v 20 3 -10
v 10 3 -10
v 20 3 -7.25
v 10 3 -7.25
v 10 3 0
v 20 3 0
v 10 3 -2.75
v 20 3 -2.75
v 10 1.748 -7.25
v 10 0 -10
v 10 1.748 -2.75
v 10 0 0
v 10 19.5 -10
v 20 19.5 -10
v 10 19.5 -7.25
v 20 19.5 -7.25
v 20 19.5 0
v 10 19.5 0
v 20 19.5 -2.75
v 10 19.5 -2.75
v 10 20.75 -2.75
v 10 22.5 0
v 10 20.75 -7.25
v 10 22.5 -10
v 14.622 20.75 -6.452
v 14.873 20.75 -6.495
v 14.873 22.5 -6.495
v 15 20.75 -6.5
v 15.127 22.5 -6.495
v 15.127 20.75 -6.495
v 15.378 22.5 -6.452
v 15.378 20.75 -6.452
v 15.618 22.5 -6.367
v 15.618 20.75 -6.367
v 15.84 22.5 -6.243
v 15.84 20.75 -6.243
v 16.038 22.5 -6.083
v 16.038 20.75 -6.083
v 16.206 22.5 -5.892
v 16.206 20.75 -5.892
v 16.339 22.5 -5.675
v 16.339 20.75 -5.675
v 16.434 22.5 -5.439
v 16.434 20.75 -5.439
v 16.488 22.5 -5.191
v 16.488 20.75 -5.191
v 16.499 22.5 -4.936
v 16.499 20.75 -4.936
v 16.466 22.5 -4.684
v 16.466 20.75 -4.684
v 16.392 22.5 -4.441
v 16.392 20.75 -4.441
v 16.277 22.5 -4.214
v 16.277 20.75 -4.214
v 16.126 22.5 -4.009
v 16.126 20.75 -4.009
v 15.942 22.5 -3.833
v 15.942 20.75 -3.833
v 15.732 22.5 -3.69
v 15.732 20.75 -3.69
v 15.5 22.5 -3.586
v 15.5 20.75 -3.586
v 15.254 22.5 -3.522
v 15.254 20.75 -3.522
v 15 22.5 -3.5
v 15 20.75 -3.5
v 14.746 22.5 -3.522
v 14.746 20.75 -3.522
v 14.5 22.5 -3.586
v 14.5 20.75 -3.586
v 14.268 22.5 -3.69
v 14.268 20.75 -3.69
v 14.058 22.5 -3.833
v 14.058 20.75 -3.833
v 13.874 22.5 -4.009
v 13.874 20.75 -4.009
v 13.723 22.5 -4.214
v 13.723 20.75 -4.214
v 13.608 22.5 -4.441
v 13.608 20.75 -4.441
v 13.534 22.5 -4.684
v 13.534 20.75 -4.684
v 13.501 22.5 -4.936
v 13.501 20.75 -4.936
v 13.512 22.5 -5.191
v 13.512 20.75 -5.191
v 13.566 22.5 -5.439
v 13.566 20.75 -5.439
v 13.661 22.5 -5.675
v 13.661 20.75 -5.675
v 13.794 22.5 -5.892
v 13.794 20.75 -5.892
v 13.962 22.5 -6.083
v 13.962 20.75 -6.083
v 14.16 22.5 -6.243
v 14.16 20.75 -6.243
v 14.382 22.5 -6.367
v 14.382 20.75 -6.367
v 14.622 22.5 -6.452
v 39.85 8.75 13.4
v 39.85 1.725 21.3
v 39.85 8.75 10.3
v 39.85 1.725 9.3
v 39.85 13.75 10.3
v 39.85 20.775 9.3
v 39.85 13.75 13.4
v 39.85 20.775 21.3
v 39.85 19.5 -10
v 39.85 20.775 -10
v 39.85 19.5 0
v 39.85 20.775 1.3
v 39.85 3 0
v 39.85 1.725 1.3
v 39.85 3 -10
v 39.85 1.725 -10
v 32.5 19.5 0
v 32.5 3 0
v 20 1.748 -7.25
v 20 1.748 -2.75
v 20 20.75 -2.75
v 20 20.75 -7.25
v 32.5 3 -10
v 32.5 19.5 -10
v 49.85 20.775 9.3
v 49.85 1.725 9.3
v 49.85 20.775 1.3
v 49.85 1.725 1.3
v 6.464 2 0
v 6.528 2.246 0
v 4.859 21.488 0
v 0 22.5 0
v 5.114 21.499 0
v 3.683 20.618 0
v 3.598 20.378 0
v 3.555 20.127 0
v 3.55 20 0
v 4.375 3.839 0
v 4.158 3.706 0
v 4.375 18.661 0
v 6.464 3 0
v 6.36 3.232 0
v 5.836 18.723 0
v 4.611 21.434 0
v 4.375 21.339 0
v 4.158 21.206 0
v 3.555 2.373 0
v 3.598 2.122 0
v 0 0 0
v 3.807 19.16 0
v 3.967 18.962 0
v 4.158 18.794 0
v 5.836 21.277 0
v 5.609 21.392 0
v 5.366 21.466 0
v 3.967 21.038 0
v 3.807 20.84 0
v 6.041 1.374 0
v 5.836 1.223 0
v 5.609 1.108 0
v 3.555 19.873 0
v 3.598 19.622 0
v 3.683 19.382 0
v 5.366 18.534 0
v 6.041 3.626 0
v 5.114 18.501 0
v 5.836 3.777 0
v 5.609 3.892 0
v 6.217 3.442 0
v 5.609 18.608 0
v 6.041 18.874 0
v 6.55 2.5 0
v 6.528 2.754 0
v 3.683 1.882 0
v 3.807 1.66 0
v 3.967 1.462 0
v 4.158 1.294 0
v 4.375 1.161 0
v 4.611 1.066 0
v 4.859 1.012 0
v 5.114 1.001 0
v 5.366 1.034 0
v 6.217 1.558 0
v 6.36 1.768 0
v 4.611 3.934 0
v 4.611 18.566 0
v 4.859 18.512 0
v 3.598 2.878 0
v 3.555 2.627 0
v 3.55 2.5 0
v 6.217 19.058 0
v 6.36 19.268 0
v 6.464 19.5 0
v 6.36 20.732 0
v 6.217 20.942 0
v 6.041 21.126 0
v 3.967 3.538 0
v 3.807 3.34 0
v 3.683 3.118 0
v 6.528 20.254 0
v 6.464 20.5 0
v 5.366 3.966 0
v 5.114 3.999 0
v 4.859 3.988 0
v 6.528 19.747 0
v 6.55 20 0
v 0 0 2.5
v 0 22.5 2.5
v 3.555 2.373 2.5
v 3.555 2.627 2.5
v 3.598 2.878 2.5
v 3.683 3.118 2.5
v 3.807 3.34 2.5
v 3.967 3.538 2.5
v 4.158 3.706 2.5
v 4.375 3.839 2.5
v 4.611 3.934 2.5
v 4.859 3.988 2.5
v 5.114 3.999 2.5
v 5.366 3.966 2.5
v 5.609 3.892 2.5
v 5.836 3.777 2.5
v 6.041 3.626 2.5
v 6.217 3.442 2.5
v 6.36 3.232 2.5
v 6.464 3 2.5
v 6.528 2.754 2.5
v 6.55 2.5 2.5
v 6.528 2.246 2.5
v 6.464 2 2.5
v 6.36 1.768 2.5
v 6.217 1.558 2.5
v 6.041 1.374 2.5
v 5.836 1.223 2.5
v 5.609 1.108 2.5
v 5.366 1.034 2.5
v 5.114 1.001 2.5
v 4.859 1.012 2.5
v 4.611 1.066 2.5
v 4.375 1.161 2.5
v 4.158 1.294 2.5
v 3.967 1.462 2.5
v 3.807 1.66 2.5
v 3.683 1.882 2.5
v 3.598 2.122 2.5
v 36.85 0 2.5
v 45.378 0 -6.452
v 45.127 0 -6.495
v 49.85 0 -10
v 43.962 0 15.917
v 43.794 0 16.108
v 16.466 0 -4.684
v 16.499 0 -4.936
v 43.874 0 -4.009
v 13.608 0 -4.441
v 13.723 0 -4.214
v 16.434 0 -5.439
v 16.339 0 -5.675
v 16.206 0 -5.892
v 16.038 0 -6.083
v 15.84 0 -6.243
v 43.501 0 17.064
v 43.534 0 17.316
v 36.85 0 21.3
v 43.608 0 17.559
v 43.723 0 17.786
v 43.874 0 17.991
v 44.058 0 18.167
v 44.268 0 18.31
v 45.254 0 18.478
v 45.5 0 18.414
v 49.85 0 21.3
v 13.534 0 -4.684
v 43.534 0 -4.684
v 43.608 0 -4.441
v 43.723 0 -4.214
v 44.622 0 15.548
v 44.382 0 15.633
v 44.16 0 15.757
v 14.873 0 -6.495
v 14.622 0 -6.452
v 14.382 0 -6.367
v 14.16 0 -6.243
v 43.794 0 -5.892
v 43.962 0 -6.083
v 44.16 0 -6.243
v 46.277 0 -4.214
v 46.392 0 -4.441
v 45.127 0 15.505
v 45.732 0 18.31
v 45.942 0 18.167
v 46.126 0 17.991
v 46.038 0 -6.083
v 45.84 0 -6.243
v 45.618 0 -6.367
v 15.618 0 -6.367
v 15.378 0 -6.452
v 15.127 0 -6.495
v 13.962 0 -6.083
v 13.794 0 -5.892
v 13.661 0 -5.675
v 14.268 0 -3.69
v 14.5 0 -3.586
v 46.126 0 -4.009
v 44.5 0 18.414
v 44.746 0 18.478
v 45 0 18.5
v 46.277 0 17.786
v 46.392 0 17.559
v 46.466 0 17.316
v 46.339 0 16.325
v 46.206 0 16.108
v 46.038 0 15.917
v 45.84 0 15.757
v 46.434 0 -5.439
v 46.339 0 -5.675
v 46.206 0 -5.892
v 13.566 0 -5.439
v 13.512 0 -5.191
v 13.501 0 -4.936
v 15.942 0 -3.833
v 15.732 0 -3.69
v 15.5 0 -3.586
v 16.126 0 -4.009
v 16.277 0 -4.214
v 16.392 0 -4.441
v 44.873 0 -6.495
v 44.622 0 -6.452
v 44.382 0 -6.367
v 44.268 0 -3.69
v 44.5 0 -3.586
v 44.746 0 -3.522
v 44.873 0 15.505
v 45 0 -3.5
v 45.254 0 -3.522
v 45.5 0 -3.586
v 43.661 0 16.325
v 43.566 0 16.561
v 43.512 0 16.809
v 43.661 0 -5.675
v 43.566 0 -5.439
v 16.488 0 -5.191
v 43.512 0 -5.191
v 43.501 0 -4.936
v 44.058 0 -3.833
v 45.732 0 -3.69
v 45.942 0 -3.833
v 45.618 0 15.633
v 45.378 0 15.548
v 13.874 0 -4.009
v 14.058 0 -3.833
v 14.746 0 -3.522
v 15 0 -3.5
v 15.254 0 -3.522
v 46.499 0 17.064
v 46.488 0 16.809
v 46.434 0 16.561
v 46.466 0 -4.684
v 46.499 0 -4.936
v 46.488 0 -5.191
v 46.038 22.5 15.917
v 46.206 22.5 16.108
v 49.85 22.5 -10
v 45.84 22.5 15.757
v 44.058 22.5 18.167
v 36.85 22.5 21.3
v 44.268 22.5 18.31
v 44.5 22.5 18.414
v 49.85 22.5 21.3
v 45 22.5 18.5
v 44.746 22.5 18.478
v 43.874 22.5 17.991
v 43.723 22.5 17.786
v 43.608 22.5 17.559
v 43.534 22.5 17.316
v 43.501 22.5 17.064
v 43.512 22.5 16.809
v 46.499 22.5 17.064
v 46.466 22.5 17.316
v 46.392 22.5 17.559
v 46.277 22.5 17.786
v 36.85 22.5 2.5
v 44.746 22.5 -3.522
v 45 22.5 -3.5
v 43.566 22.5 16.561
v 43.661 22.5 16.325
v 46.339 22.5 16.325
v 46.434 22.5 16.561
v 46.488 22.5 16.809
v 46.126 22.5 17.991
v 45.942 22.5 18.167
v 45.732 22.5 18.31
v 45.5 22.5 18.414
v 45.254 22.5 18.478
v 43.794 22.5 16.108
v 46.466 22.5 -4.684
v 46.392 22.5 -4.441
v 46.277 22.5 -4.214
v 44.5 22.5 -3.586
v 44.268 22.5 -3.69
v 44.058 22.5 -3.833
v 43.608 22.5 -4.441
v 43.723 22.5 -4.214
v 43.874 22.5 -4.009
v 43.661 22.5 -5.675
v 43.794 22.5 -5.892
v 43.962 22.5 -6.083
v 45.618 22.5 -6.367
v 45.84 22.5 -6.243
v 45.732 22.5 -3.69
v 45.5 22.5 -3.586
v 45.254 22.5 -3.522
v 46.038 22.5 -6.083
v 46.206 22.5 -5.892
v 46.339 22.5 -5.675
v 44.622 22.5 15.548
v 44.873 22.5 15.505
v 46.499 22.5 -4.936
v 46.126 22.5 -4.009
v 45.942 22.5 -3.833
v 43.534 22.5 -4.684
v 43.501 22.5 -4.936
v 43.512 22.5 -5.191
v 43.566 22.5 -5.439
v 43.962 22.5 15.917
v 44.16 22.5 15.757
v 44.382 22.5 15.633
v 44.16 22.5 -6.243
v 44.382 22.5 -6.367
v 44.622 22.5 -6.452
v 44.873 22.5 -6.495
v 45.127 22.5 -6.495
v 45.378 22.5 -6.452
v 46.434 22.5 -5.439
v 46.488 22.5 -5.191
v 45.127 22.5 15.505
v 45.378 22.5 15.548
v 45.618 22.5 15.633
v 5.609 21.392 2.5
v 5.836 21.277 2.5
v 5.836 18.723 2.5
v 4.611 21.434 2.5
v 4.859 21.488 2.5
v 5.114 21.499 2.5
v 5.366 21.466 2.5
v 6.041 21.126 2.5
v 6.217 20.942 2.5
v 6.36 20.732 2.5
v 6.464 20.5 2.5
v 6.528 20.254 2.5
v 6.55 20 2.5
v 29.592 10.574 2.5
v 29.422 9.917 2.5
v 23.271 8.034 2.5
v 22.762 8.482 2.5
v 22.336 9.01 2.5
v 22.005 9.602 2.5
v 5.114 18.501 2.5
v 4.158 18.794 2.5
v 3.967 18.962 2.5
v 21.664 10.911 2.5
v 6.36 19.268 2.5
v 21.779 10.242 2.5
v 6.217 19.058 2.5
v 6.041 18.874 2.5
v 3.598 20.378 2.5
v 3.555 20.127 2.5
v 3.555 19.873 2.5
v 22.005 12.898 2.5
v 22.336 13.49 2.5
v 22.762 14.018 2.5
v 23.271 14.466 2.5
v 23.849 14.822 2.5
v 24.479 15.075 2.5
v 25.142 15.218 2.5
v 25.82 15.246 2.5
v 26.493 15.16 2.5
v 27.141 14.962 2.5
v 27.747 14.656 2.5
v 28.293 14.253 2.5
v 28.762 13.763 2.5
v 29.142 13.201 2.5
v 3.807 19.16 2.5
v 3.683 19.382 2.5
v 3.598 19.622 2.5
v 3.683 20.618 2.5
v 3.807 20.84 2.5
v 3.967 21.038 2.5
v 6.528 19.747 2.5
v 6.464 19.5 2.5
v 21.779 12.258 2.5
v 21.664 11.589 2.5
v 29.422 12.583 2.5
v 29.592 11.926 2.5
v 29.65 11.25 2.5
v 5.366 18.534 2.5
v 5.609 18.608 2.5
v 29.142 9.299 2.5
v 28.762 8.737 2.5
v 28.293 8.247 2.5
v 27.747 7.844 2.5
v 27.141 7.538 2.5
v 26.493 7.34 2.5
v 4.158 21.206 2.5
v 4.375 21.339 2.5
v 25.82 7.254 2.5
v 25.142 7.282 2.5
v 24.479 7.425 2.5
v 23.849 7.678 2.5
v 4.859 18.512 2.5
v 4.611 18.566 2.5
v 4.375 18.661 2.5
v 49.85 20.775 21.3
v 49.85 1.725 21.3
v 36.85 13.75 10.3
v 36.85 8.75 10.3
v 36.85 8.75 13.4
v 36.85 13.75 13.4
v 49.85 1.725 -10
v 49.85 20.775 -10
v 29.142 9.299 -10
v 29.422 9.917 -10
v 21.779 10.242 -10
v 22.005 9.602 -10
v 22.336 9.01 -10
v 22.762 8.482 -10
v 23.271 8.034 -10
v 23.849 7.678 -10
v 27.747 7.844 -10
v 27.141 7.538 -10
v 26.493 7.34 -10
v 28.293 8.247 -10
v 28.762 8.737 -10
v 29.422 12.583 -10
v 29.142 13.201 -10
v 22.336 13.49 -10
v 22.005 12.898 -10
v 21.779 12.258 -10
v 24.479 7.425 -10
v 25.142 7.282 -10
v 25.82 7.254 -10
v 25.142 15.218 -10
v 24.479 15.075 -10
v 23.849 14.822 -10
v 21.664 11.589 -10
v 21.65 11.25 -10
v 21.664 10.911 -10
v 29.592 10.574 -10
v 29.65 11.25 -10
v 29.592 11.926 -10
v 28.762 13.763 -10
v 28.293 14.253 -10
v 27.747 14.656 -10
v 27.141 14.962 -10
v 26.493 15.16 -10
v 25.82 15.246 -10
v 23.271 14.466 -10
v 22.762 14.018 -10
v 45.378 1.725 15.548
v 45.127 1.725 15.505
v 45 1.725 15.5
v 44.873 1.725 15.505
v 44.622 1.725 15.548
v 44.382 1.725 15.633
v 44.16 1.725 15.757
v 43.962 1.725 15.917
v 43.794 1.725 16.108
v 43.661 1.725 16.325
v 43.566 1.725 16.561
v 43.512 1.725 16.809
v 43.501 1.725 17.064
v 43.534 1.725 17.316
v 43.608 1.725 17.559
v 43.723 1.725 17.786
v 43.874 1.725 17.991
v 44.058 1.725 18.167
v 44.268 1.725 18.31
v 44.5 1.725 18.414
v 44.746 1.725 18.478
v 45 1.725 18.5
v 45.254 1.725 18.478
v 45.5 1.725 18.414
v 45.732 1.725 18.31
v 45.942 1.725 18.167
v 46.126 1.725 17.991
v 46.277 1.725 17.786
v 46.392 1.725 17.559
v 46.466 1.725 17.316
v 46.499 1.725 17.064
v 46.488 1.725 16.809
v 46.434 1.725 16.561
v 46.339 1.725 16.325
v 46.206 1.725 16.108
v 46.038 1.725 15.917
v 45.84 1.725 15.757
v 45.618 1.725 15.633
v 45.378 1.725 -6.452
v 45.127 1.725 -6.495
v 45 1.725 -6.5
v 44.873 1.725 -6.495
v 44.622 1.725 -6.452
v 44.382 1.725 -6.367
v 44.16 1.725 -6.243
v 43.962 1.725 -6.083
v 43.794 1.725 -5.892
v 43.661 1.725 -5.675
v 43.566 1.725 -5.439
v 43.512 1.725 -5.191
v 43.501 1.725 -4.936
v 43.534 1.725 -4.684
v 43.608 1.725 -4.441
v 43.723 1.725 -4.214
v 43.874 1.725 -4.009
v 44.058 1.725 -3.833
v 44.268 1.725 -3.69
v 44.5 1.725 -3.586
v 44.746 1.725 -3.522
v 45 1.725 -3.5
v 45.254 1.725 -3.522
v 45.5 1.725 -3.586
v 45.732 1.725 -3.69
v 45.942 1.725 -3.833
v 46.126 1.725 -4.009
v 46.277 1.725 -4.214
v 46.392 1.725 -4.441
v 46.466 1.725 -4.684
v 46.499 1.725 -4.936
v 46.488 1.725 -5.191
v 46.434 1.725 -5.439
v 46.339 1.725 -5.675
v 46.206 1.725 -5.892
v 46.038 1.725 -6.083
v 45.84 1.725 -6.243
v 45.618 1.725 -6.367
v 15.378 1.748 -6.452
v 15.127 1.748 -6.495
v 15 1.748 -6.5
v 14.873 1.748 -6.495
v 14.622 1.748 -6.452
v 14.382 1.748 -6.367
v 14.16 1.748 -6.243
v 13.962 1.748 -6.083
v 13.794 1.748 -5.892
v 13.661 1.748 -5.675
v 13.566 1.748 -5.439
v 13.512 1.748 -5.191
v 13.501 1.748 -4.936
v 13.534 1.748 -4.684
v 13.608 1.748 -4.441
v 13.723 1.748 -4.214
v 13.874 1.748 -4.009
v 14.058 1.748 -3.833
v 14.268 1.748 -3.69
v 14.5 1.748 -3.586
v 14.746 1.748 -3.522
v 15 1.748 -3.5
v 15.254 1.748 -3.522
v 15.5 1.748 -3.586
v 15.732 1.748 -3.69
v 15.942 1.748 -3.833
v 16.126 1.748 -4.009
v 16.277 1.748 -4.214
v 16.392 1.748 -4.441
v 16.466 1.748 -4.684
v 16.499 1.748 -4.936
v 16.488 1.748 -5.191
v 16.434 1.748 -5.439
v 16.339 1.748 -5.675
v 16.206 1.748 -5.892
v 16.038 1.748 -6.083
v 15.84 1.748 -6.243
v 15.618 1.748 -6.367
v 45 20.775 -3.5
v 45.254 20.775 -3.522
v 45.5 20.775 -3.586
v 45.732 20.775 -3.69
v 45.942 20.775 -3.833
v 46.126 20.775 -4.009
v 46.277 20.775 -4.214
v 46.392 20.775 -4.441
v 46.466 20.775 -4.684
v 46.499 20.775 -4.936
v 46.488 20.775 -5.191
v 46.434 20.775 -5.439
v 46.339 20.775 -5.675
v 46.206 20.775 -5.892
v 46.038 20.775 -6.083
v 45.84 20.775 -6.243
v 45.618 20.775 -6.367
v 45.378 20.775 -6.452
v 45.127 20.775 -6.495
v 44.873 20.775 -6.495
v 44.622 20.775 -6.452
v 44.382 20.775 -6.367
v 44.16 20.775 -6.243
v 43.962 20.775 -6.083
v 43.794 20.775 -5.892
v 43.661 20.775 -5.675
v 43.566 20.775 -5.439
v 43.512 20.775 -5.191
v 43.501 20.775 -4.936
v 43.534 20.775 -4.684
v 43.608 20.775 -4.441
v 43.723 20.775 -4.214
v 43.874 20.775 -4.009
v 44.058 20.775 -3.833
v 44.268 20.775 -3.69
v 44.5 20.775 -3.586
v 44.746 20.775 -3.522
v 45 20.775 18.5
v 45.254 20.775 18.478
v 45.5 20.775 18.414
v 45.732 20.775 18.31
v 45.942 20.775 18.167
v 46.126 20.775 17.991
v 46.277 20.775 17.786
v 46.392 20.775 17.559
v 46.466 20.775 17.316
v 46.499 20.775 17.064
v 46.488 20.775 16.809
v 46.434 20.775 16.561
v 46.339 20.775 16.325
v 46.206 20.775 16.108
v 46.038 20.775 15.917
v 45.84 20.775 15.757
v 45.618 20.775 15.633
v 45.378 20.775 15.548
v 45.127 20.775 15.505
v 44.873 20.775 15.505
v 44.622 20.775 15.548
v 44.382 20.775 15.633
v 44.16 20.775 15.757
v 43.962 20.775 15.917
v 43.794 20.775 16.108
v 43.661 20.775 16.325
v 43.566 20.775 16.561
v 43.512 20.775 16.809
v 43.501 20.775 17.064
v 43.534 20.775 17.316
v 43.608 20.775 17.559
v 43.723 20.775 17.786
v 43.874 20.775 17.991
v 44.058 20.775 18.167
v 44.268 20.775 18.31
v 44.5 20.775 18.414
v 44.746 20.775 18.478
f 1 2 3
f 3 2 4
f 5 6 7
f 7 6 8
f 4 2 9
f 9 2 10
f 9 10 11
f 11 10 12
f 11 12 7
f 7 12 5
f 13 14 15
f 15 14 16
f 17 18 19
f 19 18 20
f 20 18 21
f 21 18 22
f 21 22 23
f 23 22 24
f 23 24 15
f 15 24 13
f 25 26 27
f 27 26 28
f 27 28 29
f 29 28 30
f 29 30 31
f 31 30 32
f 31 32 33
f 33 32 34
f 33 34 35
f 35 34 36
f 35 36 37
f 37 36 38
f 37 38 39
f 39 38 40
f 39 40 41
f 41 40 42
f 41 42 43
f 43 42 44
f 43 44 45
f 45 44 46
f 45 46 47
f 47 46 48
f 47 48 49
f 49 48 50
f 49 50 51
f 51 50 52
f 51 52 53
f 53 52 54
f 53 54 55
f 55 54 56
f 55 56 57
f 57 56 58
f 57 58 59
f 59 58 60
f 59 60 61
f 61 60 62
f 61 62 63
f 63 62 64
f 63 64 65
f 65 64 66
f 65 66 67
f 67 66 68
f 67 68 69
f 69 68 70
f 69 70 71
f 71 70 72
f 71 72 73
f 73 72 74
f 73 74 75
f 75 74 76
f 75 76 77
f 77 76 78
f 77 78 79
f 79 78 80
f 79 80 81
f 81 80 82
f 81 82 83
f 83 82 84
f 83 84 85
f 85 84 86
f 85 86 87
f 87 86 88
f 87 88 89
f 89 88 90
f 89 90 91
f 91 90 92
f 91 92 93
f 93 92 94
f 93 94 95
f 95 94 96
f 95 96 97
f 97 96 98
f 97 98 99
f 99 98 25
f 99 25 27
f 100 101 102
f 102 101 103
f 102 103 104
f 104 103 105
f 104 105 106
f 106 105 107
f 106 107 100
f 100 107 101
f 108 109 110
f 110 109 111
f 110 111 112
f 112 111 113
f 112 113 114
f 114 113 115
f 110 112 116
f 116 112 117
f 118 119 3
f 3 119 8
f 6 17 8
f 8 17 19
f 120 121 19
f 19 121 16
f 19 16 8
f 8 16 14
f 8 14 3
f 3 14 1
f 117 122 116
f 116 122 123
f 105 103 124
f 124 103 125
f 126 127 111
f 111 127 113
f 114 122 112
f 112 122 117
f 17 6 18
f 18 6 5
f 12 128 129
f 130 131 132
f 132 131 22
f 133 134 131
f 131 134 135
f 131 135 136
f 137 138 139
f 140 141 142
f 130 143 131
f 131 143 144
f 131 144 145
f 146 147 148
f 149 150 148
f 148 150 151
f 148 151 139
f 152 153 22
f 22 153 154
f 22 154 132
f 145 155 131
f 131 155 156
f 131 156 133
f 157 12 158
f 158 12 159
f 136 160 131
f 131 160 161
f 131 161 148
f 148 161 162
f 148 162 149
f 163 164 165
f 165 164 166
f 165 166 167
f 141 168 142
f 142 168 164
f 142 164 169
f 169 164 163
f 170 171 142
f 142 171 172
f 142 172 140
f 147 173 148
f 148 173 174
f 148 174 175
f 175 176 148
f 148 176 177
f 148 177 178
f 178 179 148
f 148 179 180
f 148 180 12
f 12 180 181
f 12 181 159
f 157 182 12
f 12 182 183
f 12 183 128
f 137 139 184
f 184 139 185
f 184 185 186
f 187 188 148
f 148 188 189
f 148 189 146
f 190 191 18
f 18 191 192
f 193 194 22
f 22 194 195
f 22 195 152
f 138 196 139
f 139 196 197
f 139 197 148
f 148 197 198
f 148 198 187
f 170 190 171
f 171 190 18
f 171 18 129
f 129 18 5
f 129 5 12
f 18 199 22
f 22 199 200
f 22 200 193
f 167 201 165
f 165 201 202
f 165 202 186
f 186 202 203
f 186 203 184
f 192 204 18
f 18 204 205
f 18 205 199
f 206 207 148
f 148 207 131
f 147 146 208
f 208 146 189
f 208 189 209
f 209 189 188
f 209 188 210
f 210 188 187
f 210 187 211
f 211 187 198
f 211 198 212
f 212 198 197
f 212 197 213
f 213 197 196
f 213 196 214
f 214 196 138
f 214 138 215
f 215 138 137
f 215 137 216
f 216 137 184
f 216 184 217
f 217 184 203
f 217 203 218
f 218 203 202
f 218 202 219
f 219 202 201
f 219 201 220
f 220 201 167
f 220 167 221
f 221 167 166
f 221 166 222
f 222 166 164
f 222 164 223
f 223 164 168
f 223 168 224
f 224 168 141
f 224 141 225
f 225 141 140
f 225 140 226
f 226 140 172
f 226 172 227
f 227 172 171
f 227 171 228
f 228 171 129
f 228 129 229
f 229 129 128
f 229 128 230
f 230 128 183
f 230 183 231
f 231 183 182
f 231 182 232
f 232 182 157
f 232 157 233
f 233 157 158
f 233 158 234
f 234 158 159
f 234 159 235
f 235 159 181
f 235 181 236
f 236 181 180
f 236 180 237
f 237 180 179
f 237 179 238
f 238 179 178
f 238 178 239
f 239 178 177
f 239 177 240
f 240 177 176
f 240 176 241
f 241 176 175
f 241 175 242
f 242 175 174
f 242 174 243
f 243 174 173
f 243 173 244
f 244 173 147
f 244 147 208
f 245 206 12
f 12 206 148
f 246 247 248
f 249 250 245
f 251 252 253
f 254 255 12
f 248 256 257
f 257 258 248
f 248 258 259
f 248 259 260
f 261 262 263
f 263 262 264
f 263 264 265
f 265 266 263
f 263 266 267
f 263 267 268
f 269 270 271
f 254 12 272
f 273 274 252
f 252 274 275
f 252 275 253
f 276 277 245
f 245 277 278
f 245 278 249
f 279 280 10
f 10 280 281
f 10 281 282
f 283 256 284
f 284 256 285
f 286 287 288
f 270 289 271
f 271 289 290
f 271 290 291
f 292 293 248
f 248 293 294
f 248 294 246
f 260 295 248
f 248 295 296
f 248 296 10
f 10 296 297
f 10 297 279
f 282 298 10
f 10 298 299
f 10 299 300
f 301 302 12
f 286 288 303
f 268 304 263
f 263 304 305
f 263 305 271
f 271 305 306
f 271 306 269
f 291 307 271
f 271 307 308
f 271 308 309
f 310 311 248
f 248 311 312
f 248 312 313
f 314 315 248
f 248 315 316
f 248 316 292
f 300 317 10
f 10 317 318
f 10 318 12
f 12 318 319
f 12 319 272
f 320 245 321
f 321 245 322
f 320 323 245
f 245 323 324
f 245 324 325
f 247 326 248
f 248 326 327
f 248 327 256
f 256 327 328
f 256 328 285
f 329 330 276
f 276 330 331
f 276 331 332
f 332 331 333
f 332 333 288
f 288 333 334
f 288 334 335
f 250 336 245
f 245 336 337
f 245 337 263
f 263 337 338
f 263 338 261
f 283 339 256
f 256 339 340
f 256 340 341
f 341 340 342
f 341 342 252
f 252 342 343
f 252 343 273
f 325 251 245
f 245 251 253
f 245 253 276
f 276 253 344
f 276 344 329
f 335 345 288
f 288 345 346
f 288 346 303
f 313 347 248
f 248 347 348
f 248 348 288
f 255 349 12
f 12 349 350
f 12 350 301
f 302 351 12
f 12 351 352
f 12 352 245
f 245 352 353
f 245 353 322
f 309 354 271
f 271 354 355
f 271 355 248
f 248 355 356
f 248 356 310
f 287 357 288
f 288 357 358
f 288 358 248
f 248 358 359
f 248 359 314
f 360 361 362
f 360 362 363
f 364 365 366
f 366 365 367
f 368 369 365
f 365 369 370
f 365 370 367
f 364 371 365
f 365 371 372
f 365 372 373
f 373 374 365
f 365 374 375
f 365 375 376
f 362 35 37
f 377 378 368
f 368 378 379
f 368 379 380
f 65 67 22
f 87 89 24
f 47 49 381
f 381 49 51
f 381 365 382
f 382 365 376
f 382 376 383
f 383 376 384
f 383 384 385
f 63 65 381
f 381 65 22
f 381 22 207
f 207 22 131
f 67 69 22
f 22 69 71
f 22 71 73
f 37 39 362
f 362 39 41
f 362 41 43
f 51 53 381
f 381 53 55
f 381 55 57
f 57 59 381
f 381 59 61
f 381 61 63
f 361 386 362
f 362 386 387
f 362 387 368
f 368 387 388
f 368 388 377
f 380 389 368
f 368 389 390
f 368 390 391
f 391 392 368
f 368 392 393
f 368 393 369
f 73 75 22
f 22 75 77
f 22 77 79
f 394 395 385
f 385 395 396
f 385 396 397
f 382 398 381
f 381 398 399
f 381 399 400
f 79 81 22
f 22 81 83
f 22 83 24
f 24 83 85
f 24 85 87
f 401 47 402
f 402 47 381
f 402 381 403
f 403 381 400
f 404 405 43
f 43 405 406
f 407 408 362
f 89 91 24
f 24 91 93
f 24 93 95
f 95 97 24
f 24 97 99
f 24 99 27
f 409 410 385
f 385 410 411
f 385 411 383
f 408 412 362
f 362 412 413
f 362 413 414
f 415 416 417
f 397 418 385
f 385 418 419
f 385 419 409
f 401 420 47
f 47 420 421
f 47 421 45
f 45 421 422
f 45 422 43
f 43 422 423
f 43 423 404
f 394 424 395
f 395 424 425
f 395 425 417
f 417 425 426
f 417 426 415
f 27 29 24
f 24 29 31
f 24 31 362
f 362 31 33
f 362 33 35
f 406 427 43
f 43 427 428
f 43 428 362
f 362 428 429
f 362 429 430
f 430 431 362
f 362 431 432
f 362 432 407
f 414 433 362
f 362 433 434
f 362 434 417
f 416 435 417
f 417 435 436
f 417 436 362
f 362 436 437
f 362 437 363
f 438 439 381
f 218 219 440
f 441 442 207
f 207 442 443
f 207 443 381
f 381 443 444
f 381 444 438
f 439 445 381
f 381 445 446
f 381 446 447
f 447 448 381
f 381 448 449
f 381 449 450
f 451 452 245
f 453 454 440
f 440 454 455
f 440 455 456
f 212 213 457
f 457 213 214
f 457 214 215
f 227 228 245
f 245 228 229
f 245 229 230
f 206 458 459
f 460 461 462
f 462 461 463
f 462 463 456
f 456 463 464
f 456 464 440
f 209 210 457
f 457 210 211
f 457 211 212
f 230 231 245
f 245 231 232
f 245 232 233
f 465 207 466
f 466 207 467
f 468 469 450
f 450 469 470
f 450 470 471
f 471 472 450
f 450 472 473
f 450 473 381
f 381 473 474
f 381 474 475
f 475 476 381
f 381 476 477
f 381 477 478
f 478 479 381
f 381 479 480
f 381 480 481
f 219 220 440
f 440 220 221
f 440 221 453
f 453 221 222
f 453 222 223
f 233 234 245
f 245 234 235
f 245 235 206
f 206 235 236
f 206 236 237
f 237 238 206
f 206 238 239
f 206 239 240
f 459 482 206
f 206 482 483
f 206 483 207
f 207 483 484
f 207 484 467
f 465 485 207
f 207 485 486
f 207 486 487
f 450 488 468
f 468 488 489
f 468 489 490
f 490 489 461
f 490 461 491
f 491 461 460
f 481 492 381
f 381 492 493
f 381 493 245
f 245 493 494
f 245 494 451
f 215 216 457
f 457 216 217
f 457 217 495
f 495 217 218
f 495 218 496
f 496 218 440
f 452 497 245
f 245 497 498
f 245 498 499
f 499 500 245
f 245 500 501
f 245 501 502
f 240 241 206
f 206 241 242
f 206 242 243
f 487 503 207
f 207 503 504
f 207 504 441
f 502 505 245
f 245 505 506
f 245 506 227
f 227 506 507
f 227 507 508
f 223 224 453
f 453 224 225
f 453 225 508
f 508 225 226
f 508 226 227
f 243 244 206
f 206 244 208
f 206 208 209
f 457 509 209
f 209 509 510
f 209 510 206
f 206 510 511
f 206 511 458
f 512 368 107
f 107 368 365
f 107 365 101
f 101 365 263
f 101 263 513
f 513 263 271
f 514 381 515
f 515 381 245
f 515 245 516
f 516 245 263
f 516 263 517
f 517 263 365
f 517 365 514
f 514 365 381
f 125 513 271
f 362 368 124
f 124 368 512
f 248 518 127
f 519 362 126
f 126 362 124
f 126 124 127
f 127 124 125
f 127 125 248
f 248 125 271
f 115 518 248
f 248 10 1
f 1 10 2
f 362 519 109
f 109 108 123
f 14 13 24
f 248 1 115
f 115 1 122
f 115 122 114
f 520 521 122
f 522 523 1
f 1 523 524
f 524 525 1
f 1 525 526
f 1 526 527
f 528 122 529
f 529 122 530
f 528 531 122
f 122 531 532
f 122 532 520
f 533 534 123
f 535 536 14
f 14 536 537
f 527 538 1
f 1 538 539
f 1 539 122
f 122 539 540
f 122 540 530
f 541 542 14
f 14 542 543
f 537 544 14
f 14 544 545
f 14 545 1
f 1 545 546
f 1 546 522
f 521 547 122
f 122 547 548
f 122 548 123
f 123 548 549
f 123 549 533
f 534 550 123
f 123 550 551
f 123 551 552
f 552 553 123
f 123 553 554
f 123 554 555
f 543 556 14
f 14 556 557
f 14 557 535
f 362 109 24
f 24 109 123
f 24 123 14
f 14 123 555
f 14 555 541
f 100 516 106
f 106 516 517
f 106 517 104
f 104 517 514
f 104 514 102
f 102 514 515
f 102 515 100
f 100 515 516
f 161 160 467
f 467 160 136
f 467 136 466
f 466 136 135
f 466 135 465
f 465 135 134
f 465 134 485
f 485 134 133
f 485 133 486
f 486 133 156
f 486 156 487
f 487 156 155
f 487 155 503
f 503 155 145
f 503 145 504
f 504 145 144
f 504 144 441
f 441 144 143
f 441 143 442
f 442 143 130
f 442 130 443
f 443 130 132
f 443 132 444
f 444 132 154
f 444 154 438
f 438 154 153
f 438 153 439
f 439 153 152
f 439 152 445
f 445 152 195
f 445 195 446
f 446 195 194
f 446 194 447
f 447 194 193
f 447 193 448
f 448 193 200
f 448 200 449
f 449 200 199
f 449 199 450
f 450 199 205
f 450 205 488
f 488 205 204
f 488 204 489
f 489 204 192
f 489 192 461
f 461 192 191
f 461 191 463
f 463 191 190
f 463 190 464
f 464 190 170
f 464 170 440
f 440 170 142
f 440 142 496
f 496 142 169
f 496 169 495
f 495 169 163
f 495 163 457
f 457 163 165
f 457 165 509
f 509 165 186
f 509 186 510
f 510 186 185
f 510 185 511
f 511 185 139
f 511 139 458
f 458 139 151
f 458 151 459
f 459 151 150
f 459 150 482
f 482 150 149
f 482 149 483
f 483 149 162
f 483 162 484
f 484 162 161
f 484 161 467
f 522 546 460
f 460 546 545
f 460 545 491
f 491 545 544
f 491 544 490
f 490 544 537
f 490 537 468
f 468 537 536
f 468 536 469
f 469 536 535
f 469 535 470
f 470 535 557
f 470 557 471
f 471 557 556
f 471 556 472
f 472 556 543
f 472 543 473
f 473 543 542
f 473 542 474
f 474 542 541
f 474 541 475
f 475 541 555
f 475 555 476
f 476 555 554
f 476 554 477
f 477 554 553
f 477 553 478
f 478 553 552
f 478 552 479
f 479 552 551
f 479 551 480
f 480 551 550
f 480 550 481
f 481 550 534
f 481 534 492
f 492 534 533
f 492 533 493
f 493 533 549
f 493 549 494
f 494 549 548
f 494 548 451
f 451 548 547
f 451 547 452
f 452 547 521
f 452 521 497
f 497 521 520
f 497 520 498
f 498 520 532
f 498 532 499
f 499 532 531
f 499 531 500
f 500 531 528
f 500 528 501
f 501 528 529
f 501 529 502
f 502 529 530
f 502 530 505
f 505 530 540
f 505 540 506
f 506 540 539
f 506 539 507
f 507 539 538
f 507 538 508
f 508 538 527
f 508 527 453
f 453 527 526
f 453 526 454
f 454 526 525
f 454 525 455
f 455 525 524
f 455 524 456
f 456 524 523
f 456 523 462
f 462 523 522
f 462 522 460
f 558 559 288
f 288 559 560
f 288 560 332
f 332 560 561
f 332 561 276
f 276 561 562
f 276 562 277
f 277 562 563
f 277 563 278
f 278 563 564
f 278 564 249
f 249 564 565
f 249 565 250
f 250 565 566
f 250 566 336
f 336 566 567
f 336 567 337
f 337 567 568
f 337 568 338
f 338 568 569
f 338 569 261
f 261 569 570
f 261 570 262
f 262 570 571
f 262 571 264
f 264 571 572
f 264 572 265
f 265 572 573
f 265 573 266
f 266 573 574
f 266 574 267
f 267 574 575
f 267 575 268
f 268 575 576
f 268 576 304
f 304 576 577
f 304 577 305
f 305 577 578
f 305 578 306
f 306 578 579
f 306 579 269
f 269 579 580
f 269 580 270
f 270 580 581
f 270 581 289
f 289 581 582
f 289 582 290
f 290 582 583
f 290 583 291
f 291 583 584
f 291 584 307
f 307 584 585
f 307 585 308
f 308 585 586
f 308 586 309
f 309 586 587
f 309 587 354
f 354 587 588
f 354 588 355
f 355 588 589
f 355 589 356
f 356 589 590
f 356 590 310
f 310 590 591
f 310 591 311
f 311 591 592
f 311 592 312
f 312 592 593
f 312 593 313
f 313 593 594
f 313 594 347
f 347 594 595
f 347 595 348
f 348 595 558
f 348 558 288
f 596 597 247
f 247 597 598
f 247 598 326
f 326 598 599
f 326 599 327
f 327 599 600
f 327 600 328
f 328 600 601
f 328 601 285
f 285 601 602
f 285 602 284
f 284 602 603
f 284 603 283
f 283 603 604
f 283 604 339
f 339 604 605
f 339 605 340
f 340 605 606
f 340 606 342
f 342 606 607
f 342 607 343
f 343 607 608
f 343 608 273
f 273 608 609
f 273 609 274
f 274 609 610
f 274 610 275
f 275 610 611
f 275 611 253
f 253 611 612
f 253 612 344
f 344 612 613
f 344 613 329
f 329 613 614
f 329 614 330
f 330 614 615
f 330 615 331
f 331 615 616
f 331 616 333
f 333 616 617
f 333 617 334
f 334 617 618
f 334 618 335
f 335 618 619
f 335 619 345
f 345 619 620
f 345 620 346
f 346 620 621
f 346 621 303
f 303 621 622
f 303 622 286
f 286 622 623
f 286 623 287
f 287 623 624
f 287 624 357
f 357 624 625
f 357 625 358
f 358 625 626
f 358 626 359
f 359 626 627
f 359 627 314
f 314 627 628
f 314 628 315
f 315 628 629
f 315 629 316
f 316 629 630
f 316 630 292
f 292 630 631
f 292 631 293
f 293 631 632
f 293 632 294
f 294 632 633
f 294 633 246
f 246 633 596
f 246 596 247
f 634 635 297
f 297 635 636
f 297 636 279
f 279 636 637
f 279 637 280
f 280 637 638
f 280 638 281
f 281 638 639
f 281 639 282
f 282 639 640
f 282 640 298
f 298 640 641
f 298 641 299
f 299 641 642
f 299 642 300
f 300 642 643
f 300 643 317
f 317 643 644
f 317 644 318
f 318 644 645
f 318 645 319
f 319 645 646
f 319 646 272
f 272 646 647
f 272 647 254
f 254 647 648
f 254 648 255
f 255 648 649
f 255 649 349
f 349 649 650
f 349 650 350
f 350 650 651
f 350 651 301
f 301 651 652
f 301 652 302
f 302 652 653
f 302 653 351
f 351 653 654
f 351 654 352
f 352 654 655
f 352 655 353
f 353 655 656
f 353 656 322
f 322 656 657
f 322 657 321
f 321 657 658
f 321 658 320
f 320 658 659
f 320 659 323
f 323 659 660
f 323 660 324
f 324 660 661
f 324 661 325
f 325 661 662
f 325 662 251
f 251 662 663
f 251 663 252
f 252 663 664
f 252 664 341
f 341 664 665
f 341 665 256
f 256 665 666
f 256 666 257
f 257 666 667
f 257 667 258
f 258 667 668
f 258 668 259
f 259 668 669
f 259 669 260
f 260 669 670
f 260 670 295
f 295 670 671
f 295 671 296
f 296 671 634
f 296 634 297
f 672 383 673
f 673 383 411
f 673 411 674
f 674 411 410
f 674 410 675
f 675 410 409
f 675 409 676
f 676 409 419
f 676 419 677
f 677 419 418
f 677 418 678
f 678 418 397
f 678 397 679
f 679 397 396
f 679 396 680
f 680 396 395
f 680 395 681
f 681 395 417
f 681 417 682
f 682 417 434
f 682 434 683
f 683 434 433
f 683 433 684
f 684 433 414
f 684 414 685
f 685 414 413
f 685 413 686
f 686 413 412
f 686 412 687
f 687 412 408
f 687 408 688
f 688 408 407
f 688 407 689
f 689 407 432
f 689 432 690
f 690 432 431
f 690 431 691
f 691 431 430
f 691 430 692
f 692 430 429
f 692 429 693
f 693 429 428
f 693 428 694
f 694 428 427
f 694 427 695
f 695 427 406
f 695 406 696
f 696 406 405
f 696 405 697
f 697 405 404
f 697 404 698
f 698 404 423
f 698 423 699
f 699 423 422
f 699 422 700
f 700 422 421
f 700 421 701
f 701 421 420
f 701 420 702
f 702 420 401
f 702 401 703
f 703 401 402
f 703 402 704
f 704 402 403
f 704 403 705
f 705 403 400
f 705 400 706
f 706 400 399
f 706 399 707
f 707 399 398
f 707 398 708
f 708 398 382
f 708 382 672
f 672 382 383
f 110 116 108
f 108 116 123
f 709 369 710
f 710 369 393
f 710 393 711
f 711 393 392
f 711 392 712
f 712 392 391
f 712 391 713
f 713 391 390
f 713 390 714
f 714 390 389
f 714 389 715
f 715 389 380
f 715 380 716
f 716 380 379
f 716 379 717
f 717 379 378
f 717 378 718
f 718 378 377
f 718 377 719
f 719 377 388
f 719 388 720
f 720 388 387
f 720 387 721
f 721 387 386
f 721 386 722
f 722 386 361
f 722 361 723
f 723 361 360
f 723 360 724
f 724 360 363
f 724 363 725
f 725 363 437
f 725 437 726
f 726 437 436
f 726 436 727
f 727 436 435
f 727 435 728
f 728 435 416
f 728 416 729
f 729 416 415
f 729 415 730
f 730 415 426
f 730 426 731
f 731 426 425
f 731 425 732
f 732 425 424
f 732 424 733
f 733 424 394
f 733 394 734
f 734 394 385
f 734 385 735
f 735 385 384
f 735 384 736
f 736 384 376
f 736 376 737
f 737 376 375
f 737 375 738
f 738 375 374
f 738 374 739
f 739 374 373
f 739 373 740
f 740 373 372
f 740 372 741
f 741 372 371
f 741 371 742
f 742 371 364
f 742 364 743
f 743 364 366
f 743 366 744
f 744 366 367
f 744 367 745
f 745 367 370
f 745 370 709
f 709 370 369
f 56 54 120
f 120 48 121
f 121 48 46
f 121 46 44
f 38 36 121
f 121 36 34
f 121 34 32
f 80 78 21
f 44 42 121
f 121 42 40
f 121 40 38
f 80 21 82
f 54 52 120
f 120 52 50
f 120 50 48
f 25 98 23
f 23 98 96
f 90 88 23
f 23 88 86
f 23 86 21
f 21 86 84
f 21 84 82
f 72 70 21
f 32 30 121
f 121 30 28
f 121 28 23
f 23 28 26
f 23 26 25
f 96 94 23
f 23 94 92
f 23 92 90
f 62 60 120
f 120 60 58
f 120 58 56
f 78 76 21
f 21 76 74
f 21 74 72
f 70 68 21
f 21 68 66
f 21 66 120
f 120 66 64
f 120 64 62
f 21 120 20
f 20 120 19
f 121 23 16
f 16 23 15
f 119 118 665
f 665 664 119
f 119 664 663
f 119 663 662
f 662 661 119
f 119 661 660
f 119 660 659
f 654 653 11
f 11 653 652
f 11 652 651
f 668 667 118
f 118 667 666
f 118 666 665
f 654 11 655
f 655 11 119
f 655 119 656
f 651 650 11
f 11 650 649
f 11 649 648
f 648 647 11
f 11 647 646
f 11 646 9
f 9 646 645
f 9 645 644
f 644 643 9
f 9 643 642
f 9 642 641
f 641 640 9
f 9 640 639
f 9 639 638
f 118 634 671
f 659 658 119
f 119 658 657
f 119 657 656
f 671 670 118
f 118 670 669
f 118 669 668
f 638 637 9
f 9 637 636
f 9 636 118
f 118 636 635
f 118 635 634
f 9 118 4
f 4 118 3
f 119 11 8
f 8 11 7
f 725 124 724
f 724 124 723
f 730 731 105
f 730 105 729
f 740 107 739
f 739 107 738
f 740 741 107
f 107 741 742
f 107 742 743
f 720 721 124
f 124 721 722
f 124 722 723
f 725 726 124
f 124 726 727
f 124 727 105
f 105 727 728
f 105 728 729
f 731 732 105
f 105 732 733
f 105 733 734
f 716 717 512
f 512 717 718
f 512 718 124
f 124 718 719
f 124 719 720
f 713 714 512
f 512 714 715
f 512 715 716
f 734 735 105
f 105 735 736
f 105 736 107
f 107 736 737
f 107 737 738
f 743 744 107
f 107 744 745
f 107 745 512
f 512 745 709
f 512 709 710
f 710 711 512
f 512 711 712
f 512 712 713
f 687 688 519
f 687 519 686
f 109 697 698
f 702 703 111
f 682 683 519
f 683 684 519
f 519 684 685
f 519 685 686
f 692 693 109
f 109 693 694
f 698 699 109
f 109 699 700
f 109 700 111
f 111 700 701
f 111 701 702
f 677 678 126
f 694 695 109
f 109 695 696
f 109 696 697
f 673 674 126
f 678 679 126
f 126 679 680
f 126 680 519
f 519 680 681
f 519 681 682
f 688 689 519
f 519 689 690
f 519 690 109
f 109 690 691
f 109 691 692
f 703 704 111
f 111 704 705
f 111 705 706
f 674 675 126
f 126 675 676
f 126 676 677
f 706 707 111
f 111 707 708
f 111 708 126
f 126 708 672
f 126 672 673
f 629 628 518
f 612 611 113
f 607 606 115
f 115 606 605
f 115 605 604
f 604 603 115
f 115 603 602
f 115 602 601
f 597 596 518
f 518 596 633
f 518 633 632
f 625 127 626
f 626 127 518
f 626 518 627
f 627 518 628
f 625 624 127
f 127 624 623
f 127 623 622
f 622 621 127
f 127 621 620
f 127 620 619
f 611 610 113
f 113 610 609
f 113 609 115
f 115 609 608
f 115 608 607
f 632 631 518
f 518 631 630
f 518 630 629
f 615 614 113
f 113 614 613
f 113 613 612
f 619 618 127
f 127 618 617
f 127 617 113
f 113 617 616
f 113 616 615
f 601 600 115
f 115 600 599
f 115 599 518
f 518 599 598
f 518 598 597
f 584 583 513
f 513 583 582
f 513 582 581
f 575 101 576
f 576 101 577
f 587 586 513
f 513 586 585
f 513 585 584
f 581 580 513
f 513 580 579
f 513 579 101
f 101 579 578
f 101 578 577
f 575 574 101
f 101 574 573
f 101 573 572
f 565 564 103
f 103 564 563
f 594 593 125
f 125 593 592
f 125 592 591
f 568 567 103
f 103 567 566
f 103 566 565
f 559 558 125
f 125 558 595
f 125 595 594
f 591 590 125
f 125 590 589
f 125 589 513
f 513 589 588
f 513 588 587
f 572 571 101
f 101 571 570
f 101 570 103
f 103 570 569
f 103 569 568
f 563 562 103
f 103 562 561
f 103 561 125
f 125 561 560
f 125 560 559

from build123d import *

# Parameters (mm, degrees)
SKETCH1_W               = 36.85
SKETCH1_H               = 22.5
BOSS_EXTRUDE1_DEPTH     = 2.5
SKETCH2_W               = 21.3
SKETCH2_H               = 22.5
BOSS_EXTRUDE2_DEPTH     = 3
SKETCH3_W               = 21.3
SKETCH3_H               = 3
BOSS_EXTRUDE3_DEPTH     = 10
SKETCH4_W               = 49.85
SKETCH4_H               = 3
BOSS_EXTRUDE4_DEPTH     = 10
SKETCH8_W               = 3.1
SKETCH8_H               = 5
CUT_EXTRUDE1_DEPTH      = 5
SKETCH9_R               = 4
SKETCH9_R_2             = 1.5
CUT_EXTRUDE2_DEPTH      = 25
SKETCH11_W              = 10
SKETCH11_H              = 3
CUT_EXTRUDE3_DEPTH      = 10
SKETCH12_R              = 1.5
CUT_EXTRUDE4_DEPTH      = 10
SKETCH14_W              = 12.5
SKETCH14_H              = 10
SKETCH14_W_2            = 10
SKETCH14_H_2            = 8
BOSS_EXTRUDE8_DEPTH     = 19.5
SKETCH13_R              = 1.5
BOSS_EXTRUDE7_DEPTH     = 3
SKETCH15_R              = 4
CUT_EXTRUDE5_DEPTH      = 43
CUT_EXTRUDE6_DEPTH      = 17.7525
CUT_EXTRUDE6_DEPTH_BACK = 1.25
SKETCH16_W              = 10
SKETCH16_H              = 4.5
SKETCH17_W              = 14.131300264
SKETCH17_H              = 19.05
SKETCH17_W_2            = 13.234553728
CUT_EXTRUDE7_DEPTH      = 10


with BuildPart() as part:
    # Sketch1 → Boss-Extrude1 (new body)
    with BuildSketch(Plane.XY):
        with Locations((18.425, 11.25)):
            Rectangle(SKETCH1_W, SKETCH1_H)
    extrude(amount=BOSS_EXTRUDE1_DEPTH)

    # Sketch2 → Boss-Extrude2 (add)
    with BuildSketch(Plane(origin=(36.85, 0, 0), x_dir=(0, 0, -1), z_dir=(1, 0, 0))):
        with Locations((-10.65, 11.25)):
            Rectangle(SKETCH2_W, SKETCH2_H)
    extrude(amount=BOSS_EXTRUDE2_DEPTH)

    # Sketch3 → Boss-Extrude3 (add)
    with BuildSketch(Plane(origin=(39.85, 0, 0), x_dir=(0, 0, -1), z_dir=(1, 0, 0))):
        with Locations((-10.65, 1.5)):
            Rectangle(SKETCH3_W, SKETCH3_H)
    extrude(amount=BOSS_EXTRUDE3_DEPTH)

    # Sketch4 → Boss-Extrude4 (add)
    with BuildSketch(Plane(origin=(0, 0, 0), x_dir=(-1, 0, 0), z_dir=(0, 0, -1))):
        with Locations((-24.925, 1.5)):
            Rectangle(SKETCH4_W, SKETCH4_H)
    extrude(amount=BOSS_EXTRUDE4_DEPTH)

    # Sketch8 → Cut-Extrude1 (cut)
    with BuildSketch(Plane(origin=(39.85, 0, 0), x_dir=(0, 0, -1), z_dir=(1, 0, 0))):
        with Locations((-11.85, 11.25)):
            Rectangle(SKETCH8_W, SKETCH8_H)
    extrude(amount=-CUT_EXTRUDE1_DEPTH, mode=Mode.SUBTRACT)

    # Sketch9 → Cut-Extrude2 (cut)
    with BuildSketch(Plane.XY.offset(2.5)):
        with Locations((25.65, 11.25)):
            Circle(SKETCH9_R)
        with Locations((5.05, 20)):
            Circle(SKETCH9_R_2)
        with Locations((5.05, 2.5)):
            Circle(SKETCH9_R_2)
    extrude(amount=-CUT_EXTRUDE2_DEPTH, mode=Mode.SUBTRACT)

    # Sketch11 → Cut-Extrude3 (cut)
    with BuildSketch(Plane(origin=(0, 0, -10), x_dir=(-1, 0, 0), z_dir=(0, 0, -1))):
        with Locations((-5, 1.5)):
            Rectangle(SKETCH11_W, SKETCH11_H)
    extrude(amount=-CUT_EXTRUDE3_DEPTH, mode=Mode.SUBTRACT)

    # Sketch12 → Cut-Extrude4 (cut)
    with BuildSketch(Plane(origin=(0, 3, 0), x_dir=(1, 0, 0), z_dir=(0, 1, 0))):
        with Locations(Location((15, 5, 0), (0, 0, 270))):
            Circle(SKETCH12_R)
        with Locations(Location((45, 5, 0), (0, 0, 270))):
            Circle(SKETCH12_R)
        with Locations(Location((45, -17, 0), (0, 0, 270))):
            Circle(SKETCH12_R)
    extrude(amount=-CUT_EXTRUDE4_DEPTH, mode=Mode.SUBTRACT)

    # Sketch14 → Boss-Extrude8 (add)
    with BuildSketch(Plane(origin=(0, 3, 0), x_dir=(1, 0, 0), z_dir=(0, 1, 0))):
        with Locations((26.25, 5)):
            Rectangle(SKETCH14_W, SKETCH14_H)
        with Locations((44.85, -5.3)):
            Rectangle(SKETCH14_W_2, SKETCH14_H_2)
    extrude(amount=BOSS_EXTRUDE8_DEPTH)

    # Sketch13 → Boss-Extrude7 (add)
    with BuildSketch(Plane(origin=(0, 22.5, 0), x_dir=(1, 0, 0), z_dir=(0, 1, 0))):
        Polygon((10, 10), (49.85, 10), (49.85, 0), (49.85, -21.3), (39.85, -21.3), (39.85, 0), (10, 0), align=None)
        with Locations(Location((15, 5, 0), (0, 0, 270))):
            Circle(SKETCH13_R, mode=Mode.SUBTRACT)
        with Locations(Location((45, 5, 0), (0, 0, 270))):
            Circle(SKETCH13_R, mode=Mode.SUBTRACT)
        with Locations(Location((45, -17, 0), (0, 0, 270))):
            Circle(SKETCH13_R, mode=Mode.SUBTRACT)
    extrude(amount=-BOSS_EXTRUDE7_DEPTH)

    # Sketch15 → Cut-Extrude5 (cut)
    with BuildSketch(Plane.XY.offset(2.5)):
        with Locations((25.65, 11.25)):
            Circle(SKETCH15_R)
    extrude(amount=-CUT_EXTRUDE5_DEPTH, mode=Mode.SUBTRACT)

    # Sketch16 → Cut-Extrude6 (cut, two sides: drawn at the far end of the back side and taken through both)
    with BuildSketch(Plane.XZ.offset(-19.5).offset(-CUT_EXTRUDE6_DEPTH_BACK)):
        with Locations((15, -5)):
            Rectangle(SKETCH16_W, SKETCH16_H)
    extrude(amount=CUT_EXTRUDE6_DEPTH + CUT_EXTRUDE6_DEPTH_BACK, mode=Mode.SUBTRACT)

    # Sketch17 → Cut-Extrude7 (cut)
    with BuildSketch(Plane(origin=(49.85, 0, 0), x_dir=(0, 0, -1), z_dir=(1, 0, 0))):
        with Locations((-16.365650132, 11.25)):
            Rectangle(SKETCH17_W, SKETCH17_H)
        with Locations((5.317276864, 11.25)):
            Rectangle(SKETCH17_W_2, SKETCH17_H)
    extrude(amount=-CUT_EXTRUDE7_DEPTH, mode=Mode.SUBTRACT)


solid = part.part
